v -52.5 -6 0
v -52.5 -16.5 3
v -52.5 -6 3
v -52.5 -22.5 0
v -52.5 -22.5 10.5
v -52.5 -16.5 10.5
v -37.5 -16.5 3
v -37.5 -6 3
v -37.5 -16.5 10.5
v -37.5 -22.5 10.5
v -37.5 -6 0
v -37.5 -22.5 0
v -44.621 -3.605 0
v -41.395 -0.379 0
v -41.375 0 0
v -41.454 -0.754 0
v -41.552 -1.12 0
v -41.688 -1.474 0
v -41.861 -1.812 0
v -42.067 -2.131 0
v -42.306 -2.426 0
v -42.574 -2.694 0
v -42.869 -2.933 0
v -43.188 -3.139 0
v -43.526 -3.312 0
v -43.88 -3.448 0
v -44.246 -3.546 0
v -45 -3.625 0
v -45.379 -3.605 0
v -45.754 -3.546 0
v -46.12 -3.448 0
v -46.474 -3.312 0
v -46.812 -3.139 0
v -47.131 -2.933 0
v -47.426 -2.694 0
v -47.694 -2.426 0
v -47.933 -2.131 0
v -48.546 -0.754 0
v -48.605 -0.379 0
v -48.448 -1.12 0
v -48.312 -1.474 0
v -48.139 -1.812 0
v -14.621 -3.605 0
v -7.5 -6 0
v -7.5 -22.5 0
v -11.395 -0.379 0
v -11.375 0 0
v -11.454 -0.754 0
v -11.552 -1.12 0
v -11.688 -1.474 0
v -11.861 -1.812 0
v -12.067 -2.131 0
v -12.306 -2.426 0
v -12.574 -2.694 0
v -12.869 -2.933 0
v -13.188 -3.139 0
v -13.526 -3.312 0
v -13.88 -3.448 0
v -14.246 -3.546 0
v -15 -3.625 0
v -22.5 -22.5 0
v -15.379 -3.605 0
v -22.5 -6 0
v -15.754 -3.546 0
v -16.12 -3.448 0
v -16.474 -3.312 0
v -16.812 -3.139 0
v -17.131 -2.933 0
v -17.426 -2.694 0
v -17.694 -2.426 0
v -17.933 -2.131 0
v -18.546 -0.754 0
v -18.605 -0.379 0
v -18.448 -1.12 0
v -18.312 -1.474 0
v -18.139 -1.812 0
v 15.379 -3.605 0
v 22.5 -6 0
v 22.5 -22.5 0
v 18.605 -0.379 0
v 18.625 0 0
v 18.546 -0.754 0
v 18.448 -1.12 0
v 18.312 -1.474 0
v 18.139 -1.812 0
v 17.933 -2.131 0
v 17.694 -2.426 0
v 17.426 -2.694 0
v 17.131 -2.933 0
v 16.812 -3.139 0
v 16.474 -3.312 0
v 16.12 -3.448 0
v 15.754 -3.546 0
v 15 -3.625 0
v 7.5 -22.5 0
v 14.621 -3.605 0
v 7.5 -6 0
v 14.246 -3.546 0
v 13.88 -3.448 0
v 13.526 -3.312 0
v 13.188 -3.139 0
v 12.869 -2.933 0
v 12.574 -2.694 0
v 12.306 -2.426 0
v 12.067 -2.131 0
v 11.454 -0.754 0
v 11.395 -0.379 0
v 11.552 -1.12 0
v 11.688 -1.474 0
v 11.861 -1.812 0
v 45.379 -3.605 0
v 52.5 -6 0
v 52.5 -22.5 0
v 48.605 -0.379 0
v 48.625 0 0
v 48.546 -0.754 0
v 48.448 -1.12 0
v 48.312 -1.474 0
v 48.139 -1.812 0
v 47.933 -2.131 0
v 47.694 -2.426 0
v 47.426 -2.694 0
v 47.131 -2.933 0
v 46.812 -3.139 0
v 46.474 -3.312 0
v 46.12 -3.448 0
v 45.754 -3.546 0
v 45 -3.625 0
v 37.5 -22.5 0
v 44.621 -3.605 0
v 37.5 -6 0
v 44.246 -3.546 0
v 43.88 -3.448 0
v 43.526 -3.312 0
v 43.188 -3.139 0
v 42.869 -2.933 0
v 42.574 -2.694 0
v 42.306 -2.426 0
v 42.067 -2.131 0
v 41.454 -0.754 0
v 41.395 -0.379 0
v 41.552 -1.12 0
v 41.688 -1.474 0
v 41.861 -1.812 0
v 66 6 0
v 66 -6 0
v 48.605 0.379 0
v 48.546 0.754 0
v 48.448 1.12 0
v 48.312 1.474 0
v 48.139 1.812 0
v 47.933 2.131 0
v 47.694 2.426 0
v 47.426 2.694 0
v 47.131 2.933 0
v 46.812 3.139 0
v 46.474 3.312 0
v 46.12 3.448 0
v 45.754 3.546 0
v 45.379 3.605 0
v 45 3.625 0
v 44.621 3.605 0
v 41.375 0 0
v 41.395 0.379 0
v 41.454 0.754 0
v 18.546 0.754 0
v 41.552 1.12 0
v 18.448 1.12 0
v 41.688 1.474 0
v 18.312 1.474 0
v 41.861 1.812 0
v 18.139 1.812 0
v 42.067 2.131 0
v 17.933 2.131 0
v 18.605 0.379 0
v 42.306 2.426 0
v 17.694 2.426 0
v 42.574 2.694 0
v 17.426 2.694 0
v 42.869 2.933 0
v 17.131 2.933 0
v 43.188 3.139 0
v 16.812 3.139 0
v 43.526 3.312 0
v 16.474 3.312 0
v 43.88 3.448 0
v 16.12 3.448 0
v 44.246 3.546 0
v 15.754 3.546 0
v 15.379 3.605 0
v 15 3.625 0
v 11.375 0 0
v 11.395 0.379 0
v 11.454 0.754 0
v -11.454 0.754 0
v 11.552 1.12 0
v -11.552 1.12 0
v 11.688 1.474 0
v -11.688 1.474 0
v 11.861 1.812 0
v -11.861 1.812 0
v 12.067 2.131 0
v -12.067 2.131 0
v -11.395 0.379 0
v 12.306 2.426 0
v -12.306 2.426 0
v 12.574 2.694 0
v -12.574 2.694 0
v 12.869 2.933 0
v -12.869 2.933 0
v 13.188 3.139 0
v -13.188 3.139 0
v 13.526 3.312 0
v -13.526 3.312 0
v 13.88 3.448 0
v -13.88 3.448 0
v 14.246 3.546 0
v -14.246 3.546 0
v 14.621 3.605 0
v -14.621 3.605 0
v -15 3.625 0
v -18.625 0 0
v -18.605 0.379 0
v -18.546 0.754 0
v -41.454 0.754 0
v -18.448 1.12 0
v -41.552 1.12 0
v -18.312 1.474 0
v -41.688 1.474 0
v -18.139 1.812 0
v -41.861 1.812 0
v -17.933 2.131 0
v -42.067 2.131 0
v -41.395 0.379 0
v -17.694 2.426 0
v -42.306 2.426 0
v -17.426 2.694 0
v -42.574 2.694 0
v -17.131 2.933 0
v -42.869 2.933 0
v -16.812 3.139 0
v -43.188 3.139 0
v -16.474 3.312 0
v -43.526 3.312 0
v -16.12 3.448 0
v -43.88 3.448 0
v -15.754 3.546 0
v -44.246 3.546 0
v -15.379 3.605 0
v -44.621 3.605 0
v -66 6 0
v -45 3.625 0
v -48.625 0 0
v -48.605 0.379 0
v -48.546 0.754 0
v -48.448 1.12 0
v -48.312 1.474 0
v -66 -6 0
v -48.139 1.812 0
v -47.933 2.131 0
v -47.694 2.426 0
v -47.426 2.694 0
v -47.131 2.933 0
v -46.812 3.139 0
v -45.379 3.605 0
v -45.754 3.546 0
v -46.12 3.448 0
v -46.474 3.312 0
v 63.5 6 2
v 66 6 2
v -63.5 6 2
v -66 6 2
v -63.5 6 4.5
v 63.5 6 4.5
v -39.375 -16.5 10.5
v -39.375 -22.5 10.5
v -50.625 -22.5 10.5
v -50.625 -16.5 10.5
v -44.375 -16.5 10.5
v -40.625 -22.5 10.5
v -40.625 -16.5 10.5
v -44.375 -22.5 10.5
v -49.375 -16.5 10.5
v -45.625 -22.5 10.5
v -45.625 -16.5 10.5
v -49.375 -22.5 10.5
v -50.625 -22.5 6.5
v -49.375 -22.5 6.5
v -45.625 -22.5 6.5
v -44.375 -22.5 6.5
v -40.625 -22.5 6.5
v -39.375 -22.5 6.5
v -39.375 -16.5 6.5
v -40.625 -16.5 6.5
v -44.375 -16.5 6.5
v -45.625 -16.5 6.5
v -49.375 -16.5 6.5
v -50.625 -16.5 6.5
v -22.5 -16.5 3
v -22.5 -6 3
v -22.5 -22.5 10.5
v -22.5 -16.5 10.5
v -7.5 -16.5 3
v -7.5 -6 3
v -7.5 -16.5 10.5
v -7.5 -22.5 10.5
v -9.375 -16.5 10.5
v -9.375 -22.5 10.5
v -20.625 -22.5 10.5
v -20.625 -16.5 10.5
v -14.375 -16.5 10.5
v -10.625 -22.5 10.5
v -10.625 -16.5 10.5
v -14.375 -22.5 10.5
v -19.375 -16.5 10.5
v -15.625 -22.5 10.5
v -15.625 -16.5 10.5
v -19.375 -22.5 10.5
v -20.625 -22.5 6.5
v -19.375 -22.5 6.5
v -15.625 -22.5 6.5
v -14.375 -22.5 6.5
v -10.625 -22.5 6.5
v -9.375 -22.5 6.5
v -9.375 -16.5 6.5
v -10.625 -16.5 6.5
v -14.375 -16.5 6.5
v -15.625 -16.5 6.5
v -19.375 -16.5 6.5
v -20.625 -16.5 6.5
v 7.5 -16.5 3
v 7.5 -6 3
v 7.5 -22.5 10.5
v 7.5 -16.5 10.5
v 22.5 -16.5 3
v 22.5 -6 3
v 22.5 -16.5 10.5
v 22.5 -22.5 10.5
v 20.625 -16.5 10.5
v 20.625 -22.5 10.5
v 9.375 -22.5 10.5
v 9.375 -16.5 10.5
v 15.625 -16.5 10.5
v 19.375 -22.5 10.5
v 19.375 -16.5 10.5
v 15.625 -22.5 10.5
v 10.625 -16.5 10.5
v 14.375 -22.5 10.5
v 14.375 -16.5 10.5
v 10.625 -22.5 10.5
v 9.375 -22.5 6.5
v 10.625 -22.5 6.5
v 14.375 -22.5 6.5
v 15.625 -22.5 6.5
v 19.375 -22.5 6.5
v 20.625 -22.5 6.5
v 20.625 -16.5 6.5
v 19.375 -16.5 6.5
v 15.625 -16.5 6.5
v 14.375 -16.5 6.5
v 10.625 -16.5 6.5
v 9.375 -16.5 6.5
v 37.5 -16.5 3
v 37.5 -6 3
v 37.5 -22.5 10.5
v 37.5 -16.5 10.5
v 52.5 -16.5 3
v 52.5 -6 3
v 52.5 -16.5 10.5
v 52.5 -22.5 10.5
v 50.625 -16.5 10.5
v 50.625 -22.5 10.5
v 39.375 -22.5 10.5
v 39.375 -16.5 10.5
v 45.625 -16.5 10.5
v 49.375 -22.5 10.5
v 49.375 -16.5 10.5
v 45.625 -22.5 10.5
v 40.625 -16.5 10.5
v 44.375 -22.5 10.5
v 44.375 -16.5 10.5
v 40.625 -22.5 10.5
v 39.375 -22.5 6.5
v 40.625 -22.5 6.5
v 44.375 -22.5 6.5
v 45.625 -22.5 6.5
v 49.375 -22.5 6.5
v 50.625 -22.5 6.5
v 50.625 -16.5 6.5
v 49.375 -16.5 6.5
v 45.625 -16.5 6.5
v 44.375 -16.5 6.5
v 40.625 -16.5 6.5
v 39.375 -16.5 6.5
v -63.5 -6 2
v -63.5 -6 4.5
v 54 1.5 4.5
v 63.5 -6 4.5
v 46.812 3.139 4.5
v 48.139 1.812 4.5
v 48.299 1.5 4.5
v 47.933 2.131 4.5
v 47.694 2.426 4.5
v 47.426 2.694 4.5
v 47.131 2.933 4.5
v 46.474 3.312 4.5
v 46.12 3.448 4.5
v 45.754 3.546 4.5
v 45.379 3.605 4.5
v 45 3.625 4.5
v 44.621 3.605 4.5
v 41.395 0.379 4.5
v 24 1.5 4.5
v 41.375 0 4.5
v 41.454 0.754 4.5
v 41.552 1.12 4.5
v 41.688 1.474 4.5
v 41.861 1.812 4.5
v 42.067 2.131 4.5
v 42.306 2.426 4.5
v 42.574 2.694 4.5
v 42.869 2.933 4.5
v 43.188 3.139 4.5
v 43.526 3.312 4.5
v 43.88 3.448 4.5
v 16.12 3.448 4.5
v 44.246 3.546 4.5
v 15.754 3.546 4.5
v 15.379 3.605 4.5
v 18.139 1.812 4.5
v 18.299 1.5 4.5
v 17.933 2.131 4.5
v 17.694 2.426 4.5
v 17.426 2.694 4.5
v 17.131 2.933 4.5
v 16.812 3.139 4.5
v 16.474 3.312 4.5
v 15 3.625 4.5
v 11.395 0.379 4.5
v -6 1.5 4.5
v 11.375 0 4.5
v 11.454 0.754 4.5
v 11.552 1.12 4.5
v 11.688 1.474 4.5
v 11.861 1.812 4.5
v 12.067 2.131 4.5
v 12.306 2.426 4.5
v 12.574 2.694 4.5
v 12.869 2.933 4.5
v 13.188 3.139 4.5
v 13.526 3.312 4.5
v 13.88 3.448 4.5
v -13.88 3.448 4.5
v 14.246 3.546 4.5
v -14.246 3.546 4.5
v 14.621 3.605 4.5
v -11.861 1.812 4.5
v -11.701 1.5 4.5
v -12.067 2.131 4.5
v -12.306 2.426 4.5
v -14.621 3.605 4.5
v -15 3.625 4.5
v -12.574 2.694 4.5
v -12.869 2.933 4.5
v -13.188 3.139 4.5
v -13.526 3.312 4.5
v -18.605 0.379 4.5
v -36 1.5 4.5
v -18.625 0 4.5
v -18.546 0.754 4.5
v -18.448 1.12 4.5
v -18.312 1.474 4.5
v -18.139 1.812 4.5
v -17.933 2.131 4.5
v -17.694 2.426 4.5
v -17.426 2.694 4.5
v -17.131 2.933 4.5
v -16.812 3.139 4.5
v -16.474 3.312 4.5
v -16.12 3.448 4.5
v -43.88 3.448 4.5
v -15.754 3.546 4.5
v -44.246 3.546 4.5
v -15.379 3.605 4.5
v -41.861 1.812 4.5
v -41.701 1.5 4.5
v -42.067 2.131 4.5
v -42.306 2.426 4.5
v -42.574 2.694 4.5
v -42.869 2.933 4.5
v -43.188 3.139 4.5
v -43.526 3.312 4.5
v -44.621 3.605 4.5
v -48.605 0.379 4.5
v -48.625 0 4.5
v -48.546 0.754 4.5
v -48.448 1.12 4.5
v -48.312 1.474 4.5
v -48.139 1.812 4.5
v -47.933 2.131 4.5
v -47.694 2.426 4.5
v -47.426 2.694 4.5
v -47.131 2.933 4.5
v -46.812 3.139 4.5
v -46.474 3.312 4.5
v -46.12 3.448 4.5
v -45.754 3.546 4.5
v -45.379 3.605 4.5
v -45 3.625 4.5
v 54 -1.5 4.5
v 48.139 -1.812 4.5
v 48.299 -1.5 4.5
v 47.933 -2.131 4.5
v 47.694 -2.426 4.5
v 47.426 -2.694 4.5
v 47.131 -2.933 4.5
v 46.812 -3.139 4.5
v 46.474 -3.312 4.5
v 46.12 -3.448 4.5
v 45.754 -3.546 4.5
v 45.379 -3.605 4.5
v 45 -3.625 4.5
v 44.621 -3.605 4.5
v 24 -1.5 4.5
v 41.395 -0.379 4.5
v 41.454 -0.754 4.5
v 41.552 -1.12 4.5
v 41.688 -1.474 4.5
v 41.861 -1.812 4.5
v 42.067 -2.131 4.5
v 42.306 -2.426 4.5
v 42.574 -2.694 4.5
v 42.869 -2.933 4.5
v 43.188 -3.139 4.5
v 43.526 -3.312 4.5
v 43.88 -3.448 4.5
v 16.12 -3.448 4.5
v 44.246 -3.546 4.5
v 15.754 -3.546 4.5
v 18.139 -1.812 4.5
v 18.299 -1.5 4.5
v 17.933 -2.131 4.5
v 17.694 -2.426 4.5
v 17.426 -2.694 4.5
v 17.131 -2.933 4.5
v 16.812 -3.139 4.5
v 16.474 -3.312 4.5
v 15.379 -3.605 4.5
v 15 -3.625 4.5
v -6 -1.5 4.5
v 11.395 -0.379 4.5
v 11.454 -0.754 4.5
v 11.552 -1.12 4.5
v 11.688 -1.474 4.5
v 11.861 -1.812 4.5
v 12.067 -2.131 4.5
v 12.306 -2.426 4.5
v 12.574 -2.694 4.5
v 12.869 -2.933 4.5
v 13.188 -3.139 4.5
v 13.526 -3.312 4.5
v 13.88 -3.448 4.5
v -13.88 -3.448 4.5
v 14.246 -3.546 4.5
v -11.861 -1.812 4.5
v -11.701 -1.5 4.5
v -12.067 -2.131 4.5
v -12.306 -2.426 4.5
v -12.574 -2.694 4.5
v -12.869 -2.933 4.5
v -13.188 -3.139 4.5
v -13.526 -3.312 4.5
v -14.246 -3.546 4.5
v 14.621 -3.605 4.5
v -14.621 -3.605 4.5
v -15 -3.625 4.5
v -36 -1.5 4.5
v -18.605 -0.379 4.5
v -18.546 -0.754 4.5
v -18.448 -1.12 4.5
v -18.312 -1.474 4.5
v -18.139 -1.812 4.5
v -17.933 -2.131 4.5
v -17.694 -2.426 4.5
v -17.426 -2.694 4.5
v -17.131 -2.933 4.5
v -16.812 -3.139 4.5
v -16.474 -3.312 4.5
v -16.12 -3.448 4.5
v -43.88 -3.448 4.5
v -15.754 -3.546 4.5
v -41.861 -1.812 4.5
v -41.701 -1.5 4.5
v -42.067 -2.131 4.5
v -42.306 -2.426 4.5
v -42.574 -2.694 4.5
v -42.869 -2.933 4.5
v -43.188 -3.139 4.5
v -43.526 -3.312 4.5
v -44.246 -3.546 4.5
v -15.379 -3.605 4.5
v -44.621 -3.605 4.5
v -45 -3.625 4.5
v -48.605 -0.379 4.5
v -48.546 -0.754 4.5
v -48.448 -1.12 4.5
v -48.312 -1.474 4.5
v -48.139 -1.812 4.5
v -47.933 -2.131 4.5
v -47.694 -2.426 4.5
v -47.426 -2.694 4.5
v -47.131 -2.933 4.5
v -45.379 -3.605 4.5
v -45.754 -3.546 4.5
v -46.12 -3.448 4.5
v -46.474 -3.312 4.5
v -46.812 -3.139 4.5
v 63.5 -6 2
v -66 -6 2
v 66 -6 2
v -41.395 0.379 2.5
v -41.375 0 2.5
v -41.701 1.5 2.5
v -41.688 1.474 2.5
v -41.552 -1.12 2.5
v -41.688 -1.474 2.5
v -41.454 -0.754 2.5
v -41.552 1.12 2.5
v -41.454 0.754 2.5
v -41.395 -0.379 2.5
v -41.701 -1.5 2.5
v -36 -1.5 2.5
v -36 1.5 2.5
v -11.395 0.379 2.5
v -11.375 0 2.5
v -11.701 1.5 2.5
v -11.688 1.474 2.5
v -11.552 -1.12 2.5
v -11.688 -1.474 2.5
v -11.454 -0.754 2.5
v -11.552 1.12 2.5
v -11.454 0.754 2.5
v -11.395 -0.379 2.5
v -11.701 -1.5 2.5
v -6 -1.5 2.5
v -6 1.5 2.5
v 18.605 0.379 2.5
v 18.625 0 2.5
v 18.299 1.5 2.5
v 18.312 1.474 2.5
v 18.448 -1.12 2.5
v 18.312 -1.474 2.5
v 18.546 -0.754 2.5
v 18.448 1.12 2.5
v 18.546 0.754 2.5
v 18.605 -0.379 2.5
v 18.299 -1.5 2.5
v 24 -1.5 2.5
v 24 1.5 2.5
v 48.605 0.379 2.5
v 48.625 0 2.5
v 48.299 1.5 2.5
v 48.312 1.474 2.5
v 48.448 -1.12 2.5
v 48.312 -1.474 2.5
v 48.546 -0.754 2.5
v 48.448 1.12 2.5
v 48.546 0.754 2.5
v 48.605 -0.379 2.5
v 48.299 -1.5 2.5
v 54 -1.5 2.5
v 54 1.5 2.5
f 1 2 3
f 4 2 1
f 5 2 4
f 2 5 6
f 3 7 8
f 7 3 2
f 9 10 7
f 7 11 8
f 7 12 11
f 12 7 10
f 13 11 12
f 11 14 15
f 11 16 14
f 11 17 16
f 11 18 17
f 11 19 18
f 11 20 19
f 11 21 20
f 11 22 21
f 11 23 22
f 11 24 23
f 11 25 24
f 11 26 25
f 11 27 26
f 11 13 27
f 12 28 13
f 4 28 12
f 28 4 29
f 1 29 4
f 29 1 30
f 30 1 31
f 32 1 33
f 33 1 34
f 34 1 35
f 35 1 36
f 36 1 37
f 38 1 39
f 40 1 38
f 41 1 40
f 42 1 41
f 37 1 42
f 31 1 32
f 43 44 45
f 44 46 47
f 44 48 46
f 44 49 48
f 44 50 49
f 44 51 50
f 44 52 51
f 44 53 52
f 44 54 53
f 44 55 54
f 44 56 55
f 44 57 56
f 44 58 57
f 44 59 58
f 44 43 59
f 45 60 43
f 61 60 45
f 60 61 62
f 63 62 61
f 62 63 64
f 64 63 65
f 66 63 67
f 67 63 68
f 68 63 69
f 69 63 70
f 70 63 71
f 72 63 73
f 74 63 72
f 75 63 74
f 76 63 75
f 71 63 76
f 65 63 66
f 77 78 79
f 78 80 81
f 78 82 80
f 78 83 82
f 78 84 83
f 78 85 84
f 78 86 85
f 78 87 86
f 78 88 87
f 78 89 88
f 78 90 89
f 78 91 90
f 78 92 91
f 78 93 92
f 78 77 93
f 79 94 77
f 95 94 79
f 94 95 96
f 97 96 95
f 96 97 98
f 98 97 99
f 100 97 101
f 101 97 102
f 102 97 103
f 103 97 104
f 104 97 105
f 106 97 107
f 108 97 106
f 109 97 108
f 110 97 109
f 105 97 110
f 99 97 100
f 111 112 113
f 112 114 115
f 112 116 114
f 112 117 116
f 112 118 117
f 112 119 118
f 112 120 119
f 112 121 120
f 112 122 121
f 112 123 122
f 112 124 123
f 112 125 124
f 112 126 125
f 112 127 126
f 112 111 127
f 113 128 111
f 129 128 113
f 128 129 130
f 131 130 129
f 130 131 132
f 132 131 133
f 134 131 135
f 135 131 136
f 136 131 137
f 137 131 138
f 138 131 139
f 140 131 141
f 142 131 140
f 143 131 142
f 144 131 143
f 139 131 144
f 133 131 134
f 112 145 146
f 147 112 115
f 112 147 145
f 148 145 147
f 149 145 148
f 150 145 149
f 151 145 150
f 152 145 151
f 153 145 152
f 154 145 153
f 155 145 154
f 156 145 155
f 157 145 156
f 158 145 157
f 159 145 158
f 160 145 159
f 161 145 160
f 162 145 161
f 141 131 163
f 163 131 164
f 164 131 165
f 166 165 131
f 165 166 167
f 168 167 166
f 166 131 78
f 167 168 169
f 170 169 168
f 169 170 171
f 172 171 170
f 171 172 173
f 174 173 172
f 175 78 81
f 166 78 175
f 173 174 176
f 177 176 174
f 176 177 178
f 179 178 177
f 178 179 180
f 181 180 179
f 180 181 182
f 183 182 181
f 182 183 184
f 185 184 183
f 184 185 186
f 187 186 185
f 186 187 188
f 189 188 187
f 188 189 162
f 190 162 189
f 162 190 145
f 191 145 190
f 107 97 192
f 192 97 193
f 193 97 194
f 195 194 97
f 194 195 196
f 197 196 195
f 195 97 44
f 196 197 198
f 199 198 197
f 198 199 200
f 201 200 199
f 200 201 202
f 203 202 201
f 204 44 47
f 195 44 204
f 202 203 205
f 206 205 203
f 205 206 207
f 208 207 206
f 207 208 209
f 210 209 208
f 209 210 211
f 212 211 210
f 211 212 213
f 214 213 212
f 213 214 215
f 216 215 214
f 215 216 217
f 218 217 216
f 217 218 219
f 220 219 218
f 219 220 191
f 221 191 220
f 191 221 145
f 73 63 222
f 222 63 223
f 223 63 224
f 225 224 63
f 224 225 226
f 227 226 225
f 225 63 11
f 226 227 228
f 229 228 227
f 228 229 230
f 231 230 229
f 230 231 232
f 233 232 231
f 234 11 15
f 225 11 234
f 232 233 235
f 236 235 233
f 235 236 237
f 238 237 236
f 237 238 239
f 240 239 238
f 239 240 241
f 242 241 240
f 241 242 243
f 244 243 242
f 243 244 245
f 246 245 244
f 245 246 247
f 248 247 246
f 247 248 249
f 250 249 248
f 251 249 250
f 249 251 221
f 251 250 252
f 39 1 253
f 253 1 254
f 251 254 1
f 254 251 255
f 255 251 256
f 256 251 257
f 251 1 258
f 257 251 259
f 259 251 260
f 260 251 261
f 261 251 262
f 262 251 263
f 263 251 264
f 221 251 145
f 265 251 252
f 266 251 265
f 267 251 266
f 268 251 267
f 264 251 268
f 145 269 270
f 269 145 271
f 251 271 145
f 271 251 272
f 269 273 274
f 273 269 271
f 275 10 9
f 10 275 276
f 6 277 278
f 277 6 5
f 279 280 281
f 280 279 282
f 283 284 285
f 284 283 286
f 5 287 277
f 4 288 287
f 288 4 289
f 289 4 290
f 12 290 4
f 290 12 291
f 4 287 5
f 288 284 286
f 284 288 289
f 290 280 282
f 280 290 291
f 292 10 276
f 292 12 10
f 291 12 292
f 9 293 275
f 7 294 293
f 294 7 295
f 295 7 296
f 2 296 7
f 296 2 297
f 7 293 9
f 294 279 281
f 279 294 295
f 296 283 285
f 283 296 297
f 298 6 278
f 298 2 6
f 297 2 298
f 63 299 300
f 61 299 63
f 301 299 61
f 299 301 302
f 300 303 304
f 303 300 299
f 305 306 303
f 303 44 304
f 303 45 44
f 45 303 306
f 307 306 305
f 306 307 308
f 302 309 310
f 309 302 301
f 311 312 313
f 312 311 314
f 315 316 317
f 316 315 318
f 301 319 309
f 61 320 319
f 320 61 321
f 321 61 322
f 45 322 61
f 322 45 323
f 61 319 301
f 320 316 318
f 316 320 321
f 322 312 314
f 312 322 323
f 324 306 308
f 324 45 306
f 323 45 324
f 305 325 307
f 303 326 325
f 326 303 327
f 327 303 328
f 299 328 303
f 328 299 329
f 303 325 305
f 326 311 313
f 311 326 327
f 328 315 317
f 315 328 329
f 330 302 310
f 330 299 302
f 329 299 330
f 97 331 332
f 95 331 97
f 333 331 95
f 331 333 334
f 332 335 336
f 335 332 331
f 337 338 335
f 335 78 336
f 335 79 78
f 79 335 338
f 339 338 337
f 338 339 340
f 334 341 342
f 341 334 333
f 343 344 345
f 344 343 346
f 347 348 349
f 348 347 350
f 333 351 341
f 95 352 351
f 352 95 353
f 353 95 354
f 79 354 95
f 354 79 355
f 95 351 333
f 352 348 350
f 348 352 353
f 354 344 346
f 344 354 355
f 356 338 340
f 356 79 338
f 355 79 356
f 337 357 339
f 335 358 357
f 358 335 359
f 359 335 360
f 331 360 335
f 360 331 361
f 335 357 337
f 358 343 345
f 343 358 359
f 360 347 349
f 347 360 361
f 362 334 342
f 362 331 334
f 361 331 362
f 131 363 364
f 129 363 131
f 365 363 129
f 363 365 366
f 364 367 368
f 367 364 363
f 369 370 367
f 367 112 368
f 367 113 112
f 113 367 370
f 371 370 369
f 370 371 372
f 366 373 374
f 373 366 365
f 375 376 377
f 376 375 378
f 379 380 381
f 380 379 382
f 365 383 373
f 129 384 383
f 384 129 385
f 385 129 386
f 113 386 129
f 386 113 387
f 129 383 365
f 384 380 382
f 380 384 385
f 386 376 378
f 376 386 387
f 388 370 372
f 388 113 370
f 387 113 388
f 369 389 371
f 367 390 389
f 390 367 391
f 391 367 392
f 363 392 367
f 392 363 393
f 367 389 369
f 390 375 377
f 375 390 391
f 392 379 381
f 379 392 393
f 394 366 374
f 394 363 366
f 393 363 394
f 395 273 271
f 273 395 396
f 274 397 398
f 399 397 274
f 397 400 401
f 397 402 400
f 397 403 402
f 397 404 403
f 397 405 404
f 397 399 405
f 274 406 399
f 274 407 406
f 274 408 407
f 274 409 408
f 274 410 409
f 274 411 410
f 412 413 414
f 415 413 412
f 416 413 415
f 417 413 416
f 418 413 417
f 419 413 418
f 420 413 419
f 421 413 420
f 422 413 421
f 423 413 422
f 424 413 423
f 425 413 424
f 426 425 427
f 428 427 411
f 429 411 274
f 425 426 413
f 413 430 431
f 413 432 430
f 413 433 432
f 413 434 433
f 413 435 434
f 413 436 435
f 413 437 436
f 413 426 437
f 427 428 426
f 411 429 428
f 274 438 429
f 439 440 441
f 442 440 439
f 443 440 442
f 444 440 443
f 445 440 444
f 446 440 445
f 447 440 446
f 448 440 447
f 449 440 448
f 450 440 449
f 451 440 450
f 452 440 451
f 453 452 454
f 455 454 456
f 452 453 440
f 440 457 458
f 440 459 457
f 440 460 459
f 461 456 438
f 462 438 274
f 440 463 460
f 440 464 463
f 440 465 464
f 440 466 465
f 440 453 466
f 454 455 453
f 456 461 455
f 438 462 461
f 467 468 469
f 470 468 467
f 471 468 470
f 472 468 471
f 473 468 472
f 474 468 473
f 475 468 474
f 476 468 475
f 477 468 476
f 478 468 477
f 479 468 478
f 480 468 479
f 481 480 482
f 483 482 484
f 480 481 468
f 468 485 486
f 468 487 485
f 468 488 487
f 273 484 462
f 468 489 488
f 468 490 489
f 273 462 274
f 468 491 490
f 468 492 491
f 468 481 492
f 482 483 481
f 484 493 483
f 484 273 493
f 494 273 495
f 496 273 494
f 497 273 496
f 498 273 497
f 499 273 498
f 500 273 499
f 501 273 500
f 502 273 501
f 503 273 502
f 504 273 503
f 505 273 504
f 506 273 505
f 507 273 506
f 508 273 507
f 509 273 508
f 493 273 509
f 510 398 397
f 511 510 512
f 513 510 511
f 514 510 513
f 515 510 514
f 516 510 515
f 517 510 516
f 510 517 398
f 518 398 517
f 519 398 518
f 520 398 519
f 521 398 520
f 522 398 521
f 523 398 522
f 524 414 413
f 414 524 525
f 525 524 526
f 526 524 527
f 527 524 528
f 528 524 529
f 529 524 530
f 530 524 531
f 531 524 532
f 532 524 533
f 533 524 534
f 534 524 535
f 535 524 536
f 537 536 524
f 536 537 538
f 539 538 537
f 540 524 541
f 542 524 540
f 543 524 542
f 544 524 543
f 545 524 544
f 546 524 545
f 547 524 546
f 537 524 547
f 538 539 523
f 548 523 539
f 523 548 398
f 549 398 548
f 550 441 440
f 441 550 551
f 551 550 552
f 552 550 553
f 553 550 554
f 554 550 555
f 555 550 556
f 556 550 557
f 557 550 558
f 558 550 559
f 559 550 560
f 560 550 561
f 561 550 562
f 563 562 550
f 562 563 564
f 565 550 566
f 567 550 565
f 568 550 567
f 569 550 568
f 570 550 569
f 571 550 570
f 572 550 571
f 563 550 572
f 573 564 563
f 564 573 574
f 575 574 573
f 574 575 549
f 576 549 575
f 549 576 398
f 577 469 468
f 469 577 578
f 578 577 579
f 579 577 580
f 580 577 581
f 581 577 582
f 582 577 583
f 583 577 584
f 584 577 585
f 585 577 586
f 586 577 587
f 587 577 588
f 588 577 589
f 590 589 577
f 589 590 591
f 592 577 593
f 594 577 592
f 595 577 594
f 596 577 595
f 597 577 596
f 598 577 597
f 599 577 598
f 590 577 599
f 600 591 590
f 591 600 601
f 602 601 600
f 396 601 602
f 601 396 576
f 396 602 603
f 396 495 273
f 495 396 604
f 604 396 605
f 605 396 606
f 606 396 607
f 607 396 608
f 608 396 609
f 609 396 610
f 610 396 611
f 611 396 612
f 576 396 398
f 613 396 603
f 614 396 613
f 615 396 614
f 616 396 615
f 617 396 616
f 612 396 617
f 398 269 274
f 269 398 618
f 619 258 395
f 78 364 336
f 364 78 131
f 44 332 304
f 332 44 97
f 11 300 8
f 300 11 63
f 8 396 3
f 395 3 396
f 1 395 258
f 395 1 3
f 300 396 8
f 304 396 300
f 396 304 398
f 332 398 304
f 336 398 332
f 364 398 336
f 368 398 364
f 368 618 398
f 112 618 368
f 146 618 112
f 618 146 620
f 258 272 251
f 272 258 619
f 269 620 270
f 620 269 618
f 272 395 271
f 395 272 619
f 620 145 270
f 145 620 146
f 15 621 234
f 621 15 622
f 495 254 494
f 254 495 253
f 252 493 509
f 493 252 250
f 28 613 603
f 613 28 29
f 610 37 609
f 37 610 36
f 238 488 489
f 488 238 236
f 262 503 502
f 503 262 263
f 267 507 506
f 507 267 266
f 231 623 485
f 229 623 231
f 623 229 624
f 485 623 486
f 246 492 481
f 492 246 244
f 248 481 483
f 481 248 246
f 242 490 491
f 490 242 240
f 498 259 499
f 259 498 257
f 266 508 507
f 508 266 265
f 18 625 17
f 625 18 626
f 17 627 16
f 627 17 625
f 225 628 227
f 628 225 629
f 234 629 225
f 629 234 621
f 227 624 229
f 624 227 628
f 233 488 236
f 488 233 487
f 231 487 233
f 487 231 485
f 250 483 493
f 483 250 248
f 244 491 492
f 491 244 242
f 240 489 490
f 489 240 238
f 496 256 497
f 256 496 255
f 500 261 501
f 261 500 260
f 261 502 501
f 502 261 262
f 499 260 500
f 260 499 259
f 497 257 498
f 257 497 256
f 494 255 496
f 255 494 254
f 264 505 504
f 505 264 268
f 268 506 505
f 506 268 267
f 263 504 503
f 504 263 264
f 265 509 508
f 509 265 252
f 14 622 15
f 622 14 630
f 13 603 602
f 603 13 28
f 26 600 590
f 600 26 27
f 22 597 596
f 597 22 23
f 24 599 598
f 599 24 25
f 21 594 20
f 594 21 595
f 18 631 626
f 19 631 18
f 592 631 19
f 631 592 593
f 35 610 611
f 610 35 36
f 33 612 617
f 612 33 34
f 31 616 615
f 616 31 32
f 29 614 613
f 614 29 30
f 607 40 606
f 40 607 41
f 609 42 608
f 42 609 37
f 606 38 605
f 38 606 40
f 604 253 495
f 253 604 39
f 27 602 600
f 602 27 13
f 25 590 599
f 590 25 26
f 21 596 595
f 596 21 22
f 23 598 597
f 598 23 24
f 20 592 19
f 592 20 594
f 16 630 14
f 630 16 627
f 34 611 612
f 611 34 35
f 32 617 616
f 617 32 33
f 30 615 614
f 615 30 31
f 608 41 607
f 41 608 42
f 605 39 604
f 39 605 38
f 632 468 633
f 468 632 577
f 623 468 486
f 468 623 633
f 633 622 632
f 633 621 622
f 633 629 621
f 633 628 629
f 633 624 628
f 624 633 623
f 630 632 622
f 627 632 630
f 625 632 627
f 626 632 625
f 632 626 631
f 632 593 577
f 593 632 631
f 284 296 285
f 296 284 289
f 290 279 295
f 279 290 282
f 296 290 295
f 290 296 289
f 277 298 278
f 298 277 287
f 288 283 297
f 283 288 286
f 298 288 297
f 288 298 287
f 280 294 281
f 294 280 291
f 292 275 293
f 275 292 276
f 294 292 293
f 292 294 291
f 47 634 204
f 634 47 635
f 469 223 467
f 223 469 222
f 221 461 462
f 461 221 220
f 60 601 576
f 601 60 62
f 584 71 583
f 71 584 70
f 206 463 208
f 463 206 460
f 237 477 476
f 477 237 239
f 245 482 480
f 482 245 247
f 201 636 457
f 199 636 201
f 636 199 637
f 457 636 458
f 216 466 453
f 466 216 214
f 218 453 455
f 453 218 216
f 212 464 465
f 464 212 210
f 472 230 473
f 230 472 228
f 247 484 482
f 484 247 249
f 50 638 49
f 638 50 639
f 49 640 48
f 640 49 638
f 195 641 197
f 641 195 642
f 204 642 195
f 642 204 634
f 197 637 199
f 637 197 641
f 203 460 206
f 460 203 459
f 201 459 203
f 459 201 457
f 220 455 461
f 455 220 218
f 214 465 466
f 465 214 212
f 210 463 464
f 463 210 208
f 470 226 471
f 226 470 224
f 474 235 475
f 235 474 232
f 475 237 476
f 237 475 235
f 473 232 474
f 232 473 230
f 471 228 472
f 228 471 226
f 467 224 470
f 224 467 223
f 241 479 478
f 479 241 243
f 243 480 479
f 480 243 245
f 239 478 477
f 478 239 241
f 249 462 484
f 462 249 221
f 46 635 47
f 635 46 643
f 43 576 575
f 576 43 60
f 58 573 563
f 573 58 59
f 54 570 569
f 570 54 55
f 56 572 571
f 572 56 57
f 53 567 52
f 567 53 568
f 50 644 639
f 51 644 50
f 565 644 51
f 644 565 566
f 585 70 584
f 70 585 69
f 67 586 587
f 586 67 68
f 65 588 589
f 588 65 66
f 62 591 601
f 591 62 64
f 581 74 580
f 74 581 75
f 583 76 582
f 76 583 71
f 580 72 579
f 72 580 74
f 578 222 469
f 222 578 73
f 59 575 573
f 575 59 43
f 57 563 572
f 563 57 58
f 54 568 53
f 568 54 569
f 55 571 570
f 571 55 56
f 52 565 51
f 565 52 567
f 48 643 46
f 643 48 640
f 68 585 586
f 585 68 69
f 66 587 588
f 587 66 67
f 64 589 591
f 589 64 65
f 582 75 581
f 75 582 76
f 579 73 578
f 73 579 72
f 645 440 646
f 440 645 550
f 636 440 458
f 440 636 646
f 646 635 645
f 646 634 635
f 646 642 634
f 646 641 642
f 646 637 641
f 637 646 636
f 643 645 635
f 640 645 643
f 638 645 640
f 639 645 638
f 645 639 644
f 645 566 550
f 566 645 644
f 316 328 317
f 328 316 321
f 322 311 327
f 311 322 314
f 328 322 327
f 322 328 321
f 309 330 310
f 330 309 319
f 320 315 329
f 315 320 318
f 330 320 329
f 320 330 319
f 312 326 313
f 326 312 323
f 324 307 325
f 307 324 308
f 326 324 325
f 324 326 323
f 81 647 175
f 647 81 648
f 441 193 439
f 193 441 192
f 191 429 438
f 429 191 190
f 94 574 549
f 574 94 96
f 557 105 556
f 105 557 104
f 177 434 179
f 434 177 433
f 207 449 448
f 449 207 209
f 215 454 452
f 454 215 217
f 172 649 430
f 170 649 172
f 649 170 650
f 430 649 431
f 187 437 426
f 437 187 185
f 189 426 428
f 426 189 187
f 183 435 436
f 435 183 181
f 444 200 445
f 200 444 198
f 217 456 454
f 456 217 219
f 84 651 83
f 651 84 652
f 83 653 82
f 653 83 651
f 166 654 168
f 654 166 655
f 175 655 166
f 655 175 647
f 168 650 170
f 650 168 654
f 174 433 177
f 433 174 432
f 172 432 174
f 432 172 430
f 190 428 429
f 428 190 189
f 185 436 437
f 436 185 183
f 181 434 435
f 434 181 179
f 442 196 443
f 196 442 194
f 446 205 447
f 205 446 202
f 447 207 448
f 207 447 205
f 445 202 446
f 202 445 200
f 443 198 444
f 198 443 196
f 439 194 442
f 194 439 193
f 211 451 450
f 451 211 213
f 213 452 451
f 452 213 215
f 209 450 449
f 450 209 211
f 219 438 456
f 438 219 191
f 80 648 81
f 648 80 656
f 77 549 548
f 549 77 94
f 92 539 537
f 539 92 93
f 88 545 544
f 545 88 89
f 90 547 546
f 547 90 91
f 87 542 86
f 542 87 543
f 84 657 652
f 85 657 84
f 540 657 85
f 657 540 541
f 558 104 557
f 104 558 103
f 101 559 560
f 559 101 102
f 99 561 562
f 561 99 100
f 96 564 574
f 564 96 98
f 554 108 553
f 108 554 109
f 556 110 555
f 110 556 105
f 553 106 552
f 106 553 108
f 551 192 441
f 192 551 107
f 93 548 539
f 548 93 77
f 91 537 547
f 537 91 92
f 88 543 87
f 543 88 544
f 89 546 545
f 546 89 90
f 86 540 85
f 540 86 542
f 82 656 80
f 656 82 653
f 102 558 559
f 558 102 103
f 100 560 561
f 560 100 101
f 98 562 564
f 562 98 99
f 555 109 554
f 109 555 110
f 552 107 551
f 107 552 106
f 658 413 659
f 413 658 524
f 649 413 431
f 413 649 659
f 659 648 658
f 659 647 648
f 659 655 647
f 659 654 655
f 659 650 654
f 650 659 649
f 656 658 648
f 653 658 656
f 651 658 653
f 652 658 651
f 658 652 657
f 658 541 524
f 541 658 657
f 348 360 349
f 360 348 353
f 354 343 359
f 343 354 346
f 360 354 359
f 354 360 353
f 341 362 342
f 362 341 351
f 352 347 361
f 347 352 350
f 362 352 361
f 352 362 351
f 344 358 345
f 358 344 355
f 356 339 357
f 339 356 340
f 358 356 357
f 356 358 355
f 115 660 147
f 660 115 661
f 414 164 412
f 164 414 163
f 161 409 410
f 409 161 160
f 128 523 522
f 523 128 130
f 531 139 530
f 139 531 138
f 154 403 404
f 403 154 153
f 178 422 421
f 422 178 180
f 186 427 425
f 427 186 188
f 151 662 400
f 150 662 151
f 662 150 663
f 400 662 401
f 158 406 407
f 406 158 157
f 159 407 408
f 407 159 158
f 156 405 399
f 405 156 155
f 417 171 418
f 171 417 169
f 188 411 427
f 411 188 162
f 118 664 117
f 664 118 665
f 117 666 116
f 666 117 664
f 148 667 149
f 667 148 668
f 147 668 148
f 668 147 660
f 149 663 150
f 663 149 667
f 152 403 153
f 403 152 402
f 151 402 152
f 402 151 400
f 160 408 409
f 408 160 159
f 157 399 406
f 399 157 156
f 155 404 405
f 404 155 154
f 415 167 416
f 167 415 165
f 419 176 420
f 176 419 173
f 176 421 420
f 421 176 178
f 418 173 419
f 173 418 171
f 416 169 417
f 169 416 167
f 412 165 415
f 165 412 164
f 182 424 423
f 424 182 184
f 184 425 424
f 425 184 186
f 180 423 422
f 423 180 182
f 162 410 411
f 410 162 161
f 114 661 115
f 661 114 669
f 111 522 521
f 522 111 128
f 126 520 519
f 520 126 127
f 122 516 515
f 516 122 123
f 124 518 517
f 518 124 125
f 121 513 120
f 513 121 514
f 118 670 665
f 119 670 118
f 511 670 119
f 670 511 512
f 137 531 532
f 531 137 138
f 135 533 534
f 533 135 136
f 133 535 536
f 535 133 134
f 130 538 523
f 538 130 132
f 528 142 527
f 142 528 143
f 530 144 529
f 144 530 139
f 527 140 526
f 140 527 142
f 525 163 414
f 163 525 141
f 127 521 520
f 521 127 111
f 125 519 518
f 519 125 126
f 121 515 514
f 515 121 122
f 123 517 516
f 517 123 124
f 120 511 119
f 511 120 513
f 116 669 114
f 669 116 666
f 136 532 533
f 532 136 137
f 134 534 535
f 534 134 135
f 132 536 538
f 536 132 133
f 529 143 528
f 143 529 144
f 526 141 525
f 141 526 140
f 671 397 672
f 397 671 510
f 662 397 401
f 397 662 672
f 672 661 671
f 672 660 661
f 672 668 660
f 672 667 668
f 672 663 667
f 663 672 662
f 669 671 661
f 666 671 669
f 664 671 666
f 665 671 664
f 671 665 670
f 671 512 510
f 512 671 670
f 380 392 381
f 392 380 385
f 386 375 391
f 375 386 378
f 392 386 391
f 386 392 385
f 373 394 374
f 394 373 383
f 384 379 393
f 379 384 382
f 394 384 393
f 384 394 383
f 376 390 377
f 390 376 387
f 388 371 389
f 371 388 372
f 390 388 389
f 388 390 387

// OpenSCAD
include <BOSL/constants.scad>
use <BOSL/shapes.scad>
use <BOSL/transforms.scad>
use <BOSL/masks.scad>

//2024-10-08 : Improved to support wires while soldering
//2025-01-16 : Multi version

toolWidth=127; // 5"
toolDepth=12;
toolHeight=4.5;
viseHeight=2.0;

wireShift=19.5;
potLeg=8.5;

wiggle=0.1;
$fn=60;
tool();

module tool() {  

  spacing = 30/2;
  
  difference(){
    union() {
      color("orange") cuboid([toolWidth, toolDepth, toolHeight], align=V_UP); //base jig
      color("yellow") cuboid([toolWidth+5, toolDepth, viseHeight], align=V_UP); //to fit into vise 
      left(spacing*3) potwiresupport();
      left(spacing) potwiresupport();
      right(spacing) potwiresupport();
      right(spacing*3) potwiresupport();
    }
      left(spacing*3) potholes();
      left(spacing) potholes();
      right(spacing) potholes();
      right(spacing*3) potholes();
   
  }//difference
}


module potwiresupport() {
  forward(12/2) color("brown") cuboid([15, 12+toolDepth, 3], align=V_UP); // extension for soldering
  forward(wireShift) color("green") cuboid([15, 6, potLeg+2], align=V_UP); // wire holder
}

module potholes() {
      color("green") cyl(d=7.25, h=toolHeight+wiggle, align=V_UP); // MOD POT
    right(6) up(toolHeight-2) color("blue") cuboid([6, 3, 2+wiggle], align=V_UP); // pot cutout
    //wire slots
    left(0)  up(potLeg+2-4) forward(wireShift) cuboid([1.25,6,4], align=V_UP);
    left(5)  up(potLeg+2-4) forward(wireShift) cuboid([1.25,6,4], align=V_UP);
    right(5) up(potLeg+2-4) forward(wireShift) cuboid([1.25,6,4], align=V_UP);
}
